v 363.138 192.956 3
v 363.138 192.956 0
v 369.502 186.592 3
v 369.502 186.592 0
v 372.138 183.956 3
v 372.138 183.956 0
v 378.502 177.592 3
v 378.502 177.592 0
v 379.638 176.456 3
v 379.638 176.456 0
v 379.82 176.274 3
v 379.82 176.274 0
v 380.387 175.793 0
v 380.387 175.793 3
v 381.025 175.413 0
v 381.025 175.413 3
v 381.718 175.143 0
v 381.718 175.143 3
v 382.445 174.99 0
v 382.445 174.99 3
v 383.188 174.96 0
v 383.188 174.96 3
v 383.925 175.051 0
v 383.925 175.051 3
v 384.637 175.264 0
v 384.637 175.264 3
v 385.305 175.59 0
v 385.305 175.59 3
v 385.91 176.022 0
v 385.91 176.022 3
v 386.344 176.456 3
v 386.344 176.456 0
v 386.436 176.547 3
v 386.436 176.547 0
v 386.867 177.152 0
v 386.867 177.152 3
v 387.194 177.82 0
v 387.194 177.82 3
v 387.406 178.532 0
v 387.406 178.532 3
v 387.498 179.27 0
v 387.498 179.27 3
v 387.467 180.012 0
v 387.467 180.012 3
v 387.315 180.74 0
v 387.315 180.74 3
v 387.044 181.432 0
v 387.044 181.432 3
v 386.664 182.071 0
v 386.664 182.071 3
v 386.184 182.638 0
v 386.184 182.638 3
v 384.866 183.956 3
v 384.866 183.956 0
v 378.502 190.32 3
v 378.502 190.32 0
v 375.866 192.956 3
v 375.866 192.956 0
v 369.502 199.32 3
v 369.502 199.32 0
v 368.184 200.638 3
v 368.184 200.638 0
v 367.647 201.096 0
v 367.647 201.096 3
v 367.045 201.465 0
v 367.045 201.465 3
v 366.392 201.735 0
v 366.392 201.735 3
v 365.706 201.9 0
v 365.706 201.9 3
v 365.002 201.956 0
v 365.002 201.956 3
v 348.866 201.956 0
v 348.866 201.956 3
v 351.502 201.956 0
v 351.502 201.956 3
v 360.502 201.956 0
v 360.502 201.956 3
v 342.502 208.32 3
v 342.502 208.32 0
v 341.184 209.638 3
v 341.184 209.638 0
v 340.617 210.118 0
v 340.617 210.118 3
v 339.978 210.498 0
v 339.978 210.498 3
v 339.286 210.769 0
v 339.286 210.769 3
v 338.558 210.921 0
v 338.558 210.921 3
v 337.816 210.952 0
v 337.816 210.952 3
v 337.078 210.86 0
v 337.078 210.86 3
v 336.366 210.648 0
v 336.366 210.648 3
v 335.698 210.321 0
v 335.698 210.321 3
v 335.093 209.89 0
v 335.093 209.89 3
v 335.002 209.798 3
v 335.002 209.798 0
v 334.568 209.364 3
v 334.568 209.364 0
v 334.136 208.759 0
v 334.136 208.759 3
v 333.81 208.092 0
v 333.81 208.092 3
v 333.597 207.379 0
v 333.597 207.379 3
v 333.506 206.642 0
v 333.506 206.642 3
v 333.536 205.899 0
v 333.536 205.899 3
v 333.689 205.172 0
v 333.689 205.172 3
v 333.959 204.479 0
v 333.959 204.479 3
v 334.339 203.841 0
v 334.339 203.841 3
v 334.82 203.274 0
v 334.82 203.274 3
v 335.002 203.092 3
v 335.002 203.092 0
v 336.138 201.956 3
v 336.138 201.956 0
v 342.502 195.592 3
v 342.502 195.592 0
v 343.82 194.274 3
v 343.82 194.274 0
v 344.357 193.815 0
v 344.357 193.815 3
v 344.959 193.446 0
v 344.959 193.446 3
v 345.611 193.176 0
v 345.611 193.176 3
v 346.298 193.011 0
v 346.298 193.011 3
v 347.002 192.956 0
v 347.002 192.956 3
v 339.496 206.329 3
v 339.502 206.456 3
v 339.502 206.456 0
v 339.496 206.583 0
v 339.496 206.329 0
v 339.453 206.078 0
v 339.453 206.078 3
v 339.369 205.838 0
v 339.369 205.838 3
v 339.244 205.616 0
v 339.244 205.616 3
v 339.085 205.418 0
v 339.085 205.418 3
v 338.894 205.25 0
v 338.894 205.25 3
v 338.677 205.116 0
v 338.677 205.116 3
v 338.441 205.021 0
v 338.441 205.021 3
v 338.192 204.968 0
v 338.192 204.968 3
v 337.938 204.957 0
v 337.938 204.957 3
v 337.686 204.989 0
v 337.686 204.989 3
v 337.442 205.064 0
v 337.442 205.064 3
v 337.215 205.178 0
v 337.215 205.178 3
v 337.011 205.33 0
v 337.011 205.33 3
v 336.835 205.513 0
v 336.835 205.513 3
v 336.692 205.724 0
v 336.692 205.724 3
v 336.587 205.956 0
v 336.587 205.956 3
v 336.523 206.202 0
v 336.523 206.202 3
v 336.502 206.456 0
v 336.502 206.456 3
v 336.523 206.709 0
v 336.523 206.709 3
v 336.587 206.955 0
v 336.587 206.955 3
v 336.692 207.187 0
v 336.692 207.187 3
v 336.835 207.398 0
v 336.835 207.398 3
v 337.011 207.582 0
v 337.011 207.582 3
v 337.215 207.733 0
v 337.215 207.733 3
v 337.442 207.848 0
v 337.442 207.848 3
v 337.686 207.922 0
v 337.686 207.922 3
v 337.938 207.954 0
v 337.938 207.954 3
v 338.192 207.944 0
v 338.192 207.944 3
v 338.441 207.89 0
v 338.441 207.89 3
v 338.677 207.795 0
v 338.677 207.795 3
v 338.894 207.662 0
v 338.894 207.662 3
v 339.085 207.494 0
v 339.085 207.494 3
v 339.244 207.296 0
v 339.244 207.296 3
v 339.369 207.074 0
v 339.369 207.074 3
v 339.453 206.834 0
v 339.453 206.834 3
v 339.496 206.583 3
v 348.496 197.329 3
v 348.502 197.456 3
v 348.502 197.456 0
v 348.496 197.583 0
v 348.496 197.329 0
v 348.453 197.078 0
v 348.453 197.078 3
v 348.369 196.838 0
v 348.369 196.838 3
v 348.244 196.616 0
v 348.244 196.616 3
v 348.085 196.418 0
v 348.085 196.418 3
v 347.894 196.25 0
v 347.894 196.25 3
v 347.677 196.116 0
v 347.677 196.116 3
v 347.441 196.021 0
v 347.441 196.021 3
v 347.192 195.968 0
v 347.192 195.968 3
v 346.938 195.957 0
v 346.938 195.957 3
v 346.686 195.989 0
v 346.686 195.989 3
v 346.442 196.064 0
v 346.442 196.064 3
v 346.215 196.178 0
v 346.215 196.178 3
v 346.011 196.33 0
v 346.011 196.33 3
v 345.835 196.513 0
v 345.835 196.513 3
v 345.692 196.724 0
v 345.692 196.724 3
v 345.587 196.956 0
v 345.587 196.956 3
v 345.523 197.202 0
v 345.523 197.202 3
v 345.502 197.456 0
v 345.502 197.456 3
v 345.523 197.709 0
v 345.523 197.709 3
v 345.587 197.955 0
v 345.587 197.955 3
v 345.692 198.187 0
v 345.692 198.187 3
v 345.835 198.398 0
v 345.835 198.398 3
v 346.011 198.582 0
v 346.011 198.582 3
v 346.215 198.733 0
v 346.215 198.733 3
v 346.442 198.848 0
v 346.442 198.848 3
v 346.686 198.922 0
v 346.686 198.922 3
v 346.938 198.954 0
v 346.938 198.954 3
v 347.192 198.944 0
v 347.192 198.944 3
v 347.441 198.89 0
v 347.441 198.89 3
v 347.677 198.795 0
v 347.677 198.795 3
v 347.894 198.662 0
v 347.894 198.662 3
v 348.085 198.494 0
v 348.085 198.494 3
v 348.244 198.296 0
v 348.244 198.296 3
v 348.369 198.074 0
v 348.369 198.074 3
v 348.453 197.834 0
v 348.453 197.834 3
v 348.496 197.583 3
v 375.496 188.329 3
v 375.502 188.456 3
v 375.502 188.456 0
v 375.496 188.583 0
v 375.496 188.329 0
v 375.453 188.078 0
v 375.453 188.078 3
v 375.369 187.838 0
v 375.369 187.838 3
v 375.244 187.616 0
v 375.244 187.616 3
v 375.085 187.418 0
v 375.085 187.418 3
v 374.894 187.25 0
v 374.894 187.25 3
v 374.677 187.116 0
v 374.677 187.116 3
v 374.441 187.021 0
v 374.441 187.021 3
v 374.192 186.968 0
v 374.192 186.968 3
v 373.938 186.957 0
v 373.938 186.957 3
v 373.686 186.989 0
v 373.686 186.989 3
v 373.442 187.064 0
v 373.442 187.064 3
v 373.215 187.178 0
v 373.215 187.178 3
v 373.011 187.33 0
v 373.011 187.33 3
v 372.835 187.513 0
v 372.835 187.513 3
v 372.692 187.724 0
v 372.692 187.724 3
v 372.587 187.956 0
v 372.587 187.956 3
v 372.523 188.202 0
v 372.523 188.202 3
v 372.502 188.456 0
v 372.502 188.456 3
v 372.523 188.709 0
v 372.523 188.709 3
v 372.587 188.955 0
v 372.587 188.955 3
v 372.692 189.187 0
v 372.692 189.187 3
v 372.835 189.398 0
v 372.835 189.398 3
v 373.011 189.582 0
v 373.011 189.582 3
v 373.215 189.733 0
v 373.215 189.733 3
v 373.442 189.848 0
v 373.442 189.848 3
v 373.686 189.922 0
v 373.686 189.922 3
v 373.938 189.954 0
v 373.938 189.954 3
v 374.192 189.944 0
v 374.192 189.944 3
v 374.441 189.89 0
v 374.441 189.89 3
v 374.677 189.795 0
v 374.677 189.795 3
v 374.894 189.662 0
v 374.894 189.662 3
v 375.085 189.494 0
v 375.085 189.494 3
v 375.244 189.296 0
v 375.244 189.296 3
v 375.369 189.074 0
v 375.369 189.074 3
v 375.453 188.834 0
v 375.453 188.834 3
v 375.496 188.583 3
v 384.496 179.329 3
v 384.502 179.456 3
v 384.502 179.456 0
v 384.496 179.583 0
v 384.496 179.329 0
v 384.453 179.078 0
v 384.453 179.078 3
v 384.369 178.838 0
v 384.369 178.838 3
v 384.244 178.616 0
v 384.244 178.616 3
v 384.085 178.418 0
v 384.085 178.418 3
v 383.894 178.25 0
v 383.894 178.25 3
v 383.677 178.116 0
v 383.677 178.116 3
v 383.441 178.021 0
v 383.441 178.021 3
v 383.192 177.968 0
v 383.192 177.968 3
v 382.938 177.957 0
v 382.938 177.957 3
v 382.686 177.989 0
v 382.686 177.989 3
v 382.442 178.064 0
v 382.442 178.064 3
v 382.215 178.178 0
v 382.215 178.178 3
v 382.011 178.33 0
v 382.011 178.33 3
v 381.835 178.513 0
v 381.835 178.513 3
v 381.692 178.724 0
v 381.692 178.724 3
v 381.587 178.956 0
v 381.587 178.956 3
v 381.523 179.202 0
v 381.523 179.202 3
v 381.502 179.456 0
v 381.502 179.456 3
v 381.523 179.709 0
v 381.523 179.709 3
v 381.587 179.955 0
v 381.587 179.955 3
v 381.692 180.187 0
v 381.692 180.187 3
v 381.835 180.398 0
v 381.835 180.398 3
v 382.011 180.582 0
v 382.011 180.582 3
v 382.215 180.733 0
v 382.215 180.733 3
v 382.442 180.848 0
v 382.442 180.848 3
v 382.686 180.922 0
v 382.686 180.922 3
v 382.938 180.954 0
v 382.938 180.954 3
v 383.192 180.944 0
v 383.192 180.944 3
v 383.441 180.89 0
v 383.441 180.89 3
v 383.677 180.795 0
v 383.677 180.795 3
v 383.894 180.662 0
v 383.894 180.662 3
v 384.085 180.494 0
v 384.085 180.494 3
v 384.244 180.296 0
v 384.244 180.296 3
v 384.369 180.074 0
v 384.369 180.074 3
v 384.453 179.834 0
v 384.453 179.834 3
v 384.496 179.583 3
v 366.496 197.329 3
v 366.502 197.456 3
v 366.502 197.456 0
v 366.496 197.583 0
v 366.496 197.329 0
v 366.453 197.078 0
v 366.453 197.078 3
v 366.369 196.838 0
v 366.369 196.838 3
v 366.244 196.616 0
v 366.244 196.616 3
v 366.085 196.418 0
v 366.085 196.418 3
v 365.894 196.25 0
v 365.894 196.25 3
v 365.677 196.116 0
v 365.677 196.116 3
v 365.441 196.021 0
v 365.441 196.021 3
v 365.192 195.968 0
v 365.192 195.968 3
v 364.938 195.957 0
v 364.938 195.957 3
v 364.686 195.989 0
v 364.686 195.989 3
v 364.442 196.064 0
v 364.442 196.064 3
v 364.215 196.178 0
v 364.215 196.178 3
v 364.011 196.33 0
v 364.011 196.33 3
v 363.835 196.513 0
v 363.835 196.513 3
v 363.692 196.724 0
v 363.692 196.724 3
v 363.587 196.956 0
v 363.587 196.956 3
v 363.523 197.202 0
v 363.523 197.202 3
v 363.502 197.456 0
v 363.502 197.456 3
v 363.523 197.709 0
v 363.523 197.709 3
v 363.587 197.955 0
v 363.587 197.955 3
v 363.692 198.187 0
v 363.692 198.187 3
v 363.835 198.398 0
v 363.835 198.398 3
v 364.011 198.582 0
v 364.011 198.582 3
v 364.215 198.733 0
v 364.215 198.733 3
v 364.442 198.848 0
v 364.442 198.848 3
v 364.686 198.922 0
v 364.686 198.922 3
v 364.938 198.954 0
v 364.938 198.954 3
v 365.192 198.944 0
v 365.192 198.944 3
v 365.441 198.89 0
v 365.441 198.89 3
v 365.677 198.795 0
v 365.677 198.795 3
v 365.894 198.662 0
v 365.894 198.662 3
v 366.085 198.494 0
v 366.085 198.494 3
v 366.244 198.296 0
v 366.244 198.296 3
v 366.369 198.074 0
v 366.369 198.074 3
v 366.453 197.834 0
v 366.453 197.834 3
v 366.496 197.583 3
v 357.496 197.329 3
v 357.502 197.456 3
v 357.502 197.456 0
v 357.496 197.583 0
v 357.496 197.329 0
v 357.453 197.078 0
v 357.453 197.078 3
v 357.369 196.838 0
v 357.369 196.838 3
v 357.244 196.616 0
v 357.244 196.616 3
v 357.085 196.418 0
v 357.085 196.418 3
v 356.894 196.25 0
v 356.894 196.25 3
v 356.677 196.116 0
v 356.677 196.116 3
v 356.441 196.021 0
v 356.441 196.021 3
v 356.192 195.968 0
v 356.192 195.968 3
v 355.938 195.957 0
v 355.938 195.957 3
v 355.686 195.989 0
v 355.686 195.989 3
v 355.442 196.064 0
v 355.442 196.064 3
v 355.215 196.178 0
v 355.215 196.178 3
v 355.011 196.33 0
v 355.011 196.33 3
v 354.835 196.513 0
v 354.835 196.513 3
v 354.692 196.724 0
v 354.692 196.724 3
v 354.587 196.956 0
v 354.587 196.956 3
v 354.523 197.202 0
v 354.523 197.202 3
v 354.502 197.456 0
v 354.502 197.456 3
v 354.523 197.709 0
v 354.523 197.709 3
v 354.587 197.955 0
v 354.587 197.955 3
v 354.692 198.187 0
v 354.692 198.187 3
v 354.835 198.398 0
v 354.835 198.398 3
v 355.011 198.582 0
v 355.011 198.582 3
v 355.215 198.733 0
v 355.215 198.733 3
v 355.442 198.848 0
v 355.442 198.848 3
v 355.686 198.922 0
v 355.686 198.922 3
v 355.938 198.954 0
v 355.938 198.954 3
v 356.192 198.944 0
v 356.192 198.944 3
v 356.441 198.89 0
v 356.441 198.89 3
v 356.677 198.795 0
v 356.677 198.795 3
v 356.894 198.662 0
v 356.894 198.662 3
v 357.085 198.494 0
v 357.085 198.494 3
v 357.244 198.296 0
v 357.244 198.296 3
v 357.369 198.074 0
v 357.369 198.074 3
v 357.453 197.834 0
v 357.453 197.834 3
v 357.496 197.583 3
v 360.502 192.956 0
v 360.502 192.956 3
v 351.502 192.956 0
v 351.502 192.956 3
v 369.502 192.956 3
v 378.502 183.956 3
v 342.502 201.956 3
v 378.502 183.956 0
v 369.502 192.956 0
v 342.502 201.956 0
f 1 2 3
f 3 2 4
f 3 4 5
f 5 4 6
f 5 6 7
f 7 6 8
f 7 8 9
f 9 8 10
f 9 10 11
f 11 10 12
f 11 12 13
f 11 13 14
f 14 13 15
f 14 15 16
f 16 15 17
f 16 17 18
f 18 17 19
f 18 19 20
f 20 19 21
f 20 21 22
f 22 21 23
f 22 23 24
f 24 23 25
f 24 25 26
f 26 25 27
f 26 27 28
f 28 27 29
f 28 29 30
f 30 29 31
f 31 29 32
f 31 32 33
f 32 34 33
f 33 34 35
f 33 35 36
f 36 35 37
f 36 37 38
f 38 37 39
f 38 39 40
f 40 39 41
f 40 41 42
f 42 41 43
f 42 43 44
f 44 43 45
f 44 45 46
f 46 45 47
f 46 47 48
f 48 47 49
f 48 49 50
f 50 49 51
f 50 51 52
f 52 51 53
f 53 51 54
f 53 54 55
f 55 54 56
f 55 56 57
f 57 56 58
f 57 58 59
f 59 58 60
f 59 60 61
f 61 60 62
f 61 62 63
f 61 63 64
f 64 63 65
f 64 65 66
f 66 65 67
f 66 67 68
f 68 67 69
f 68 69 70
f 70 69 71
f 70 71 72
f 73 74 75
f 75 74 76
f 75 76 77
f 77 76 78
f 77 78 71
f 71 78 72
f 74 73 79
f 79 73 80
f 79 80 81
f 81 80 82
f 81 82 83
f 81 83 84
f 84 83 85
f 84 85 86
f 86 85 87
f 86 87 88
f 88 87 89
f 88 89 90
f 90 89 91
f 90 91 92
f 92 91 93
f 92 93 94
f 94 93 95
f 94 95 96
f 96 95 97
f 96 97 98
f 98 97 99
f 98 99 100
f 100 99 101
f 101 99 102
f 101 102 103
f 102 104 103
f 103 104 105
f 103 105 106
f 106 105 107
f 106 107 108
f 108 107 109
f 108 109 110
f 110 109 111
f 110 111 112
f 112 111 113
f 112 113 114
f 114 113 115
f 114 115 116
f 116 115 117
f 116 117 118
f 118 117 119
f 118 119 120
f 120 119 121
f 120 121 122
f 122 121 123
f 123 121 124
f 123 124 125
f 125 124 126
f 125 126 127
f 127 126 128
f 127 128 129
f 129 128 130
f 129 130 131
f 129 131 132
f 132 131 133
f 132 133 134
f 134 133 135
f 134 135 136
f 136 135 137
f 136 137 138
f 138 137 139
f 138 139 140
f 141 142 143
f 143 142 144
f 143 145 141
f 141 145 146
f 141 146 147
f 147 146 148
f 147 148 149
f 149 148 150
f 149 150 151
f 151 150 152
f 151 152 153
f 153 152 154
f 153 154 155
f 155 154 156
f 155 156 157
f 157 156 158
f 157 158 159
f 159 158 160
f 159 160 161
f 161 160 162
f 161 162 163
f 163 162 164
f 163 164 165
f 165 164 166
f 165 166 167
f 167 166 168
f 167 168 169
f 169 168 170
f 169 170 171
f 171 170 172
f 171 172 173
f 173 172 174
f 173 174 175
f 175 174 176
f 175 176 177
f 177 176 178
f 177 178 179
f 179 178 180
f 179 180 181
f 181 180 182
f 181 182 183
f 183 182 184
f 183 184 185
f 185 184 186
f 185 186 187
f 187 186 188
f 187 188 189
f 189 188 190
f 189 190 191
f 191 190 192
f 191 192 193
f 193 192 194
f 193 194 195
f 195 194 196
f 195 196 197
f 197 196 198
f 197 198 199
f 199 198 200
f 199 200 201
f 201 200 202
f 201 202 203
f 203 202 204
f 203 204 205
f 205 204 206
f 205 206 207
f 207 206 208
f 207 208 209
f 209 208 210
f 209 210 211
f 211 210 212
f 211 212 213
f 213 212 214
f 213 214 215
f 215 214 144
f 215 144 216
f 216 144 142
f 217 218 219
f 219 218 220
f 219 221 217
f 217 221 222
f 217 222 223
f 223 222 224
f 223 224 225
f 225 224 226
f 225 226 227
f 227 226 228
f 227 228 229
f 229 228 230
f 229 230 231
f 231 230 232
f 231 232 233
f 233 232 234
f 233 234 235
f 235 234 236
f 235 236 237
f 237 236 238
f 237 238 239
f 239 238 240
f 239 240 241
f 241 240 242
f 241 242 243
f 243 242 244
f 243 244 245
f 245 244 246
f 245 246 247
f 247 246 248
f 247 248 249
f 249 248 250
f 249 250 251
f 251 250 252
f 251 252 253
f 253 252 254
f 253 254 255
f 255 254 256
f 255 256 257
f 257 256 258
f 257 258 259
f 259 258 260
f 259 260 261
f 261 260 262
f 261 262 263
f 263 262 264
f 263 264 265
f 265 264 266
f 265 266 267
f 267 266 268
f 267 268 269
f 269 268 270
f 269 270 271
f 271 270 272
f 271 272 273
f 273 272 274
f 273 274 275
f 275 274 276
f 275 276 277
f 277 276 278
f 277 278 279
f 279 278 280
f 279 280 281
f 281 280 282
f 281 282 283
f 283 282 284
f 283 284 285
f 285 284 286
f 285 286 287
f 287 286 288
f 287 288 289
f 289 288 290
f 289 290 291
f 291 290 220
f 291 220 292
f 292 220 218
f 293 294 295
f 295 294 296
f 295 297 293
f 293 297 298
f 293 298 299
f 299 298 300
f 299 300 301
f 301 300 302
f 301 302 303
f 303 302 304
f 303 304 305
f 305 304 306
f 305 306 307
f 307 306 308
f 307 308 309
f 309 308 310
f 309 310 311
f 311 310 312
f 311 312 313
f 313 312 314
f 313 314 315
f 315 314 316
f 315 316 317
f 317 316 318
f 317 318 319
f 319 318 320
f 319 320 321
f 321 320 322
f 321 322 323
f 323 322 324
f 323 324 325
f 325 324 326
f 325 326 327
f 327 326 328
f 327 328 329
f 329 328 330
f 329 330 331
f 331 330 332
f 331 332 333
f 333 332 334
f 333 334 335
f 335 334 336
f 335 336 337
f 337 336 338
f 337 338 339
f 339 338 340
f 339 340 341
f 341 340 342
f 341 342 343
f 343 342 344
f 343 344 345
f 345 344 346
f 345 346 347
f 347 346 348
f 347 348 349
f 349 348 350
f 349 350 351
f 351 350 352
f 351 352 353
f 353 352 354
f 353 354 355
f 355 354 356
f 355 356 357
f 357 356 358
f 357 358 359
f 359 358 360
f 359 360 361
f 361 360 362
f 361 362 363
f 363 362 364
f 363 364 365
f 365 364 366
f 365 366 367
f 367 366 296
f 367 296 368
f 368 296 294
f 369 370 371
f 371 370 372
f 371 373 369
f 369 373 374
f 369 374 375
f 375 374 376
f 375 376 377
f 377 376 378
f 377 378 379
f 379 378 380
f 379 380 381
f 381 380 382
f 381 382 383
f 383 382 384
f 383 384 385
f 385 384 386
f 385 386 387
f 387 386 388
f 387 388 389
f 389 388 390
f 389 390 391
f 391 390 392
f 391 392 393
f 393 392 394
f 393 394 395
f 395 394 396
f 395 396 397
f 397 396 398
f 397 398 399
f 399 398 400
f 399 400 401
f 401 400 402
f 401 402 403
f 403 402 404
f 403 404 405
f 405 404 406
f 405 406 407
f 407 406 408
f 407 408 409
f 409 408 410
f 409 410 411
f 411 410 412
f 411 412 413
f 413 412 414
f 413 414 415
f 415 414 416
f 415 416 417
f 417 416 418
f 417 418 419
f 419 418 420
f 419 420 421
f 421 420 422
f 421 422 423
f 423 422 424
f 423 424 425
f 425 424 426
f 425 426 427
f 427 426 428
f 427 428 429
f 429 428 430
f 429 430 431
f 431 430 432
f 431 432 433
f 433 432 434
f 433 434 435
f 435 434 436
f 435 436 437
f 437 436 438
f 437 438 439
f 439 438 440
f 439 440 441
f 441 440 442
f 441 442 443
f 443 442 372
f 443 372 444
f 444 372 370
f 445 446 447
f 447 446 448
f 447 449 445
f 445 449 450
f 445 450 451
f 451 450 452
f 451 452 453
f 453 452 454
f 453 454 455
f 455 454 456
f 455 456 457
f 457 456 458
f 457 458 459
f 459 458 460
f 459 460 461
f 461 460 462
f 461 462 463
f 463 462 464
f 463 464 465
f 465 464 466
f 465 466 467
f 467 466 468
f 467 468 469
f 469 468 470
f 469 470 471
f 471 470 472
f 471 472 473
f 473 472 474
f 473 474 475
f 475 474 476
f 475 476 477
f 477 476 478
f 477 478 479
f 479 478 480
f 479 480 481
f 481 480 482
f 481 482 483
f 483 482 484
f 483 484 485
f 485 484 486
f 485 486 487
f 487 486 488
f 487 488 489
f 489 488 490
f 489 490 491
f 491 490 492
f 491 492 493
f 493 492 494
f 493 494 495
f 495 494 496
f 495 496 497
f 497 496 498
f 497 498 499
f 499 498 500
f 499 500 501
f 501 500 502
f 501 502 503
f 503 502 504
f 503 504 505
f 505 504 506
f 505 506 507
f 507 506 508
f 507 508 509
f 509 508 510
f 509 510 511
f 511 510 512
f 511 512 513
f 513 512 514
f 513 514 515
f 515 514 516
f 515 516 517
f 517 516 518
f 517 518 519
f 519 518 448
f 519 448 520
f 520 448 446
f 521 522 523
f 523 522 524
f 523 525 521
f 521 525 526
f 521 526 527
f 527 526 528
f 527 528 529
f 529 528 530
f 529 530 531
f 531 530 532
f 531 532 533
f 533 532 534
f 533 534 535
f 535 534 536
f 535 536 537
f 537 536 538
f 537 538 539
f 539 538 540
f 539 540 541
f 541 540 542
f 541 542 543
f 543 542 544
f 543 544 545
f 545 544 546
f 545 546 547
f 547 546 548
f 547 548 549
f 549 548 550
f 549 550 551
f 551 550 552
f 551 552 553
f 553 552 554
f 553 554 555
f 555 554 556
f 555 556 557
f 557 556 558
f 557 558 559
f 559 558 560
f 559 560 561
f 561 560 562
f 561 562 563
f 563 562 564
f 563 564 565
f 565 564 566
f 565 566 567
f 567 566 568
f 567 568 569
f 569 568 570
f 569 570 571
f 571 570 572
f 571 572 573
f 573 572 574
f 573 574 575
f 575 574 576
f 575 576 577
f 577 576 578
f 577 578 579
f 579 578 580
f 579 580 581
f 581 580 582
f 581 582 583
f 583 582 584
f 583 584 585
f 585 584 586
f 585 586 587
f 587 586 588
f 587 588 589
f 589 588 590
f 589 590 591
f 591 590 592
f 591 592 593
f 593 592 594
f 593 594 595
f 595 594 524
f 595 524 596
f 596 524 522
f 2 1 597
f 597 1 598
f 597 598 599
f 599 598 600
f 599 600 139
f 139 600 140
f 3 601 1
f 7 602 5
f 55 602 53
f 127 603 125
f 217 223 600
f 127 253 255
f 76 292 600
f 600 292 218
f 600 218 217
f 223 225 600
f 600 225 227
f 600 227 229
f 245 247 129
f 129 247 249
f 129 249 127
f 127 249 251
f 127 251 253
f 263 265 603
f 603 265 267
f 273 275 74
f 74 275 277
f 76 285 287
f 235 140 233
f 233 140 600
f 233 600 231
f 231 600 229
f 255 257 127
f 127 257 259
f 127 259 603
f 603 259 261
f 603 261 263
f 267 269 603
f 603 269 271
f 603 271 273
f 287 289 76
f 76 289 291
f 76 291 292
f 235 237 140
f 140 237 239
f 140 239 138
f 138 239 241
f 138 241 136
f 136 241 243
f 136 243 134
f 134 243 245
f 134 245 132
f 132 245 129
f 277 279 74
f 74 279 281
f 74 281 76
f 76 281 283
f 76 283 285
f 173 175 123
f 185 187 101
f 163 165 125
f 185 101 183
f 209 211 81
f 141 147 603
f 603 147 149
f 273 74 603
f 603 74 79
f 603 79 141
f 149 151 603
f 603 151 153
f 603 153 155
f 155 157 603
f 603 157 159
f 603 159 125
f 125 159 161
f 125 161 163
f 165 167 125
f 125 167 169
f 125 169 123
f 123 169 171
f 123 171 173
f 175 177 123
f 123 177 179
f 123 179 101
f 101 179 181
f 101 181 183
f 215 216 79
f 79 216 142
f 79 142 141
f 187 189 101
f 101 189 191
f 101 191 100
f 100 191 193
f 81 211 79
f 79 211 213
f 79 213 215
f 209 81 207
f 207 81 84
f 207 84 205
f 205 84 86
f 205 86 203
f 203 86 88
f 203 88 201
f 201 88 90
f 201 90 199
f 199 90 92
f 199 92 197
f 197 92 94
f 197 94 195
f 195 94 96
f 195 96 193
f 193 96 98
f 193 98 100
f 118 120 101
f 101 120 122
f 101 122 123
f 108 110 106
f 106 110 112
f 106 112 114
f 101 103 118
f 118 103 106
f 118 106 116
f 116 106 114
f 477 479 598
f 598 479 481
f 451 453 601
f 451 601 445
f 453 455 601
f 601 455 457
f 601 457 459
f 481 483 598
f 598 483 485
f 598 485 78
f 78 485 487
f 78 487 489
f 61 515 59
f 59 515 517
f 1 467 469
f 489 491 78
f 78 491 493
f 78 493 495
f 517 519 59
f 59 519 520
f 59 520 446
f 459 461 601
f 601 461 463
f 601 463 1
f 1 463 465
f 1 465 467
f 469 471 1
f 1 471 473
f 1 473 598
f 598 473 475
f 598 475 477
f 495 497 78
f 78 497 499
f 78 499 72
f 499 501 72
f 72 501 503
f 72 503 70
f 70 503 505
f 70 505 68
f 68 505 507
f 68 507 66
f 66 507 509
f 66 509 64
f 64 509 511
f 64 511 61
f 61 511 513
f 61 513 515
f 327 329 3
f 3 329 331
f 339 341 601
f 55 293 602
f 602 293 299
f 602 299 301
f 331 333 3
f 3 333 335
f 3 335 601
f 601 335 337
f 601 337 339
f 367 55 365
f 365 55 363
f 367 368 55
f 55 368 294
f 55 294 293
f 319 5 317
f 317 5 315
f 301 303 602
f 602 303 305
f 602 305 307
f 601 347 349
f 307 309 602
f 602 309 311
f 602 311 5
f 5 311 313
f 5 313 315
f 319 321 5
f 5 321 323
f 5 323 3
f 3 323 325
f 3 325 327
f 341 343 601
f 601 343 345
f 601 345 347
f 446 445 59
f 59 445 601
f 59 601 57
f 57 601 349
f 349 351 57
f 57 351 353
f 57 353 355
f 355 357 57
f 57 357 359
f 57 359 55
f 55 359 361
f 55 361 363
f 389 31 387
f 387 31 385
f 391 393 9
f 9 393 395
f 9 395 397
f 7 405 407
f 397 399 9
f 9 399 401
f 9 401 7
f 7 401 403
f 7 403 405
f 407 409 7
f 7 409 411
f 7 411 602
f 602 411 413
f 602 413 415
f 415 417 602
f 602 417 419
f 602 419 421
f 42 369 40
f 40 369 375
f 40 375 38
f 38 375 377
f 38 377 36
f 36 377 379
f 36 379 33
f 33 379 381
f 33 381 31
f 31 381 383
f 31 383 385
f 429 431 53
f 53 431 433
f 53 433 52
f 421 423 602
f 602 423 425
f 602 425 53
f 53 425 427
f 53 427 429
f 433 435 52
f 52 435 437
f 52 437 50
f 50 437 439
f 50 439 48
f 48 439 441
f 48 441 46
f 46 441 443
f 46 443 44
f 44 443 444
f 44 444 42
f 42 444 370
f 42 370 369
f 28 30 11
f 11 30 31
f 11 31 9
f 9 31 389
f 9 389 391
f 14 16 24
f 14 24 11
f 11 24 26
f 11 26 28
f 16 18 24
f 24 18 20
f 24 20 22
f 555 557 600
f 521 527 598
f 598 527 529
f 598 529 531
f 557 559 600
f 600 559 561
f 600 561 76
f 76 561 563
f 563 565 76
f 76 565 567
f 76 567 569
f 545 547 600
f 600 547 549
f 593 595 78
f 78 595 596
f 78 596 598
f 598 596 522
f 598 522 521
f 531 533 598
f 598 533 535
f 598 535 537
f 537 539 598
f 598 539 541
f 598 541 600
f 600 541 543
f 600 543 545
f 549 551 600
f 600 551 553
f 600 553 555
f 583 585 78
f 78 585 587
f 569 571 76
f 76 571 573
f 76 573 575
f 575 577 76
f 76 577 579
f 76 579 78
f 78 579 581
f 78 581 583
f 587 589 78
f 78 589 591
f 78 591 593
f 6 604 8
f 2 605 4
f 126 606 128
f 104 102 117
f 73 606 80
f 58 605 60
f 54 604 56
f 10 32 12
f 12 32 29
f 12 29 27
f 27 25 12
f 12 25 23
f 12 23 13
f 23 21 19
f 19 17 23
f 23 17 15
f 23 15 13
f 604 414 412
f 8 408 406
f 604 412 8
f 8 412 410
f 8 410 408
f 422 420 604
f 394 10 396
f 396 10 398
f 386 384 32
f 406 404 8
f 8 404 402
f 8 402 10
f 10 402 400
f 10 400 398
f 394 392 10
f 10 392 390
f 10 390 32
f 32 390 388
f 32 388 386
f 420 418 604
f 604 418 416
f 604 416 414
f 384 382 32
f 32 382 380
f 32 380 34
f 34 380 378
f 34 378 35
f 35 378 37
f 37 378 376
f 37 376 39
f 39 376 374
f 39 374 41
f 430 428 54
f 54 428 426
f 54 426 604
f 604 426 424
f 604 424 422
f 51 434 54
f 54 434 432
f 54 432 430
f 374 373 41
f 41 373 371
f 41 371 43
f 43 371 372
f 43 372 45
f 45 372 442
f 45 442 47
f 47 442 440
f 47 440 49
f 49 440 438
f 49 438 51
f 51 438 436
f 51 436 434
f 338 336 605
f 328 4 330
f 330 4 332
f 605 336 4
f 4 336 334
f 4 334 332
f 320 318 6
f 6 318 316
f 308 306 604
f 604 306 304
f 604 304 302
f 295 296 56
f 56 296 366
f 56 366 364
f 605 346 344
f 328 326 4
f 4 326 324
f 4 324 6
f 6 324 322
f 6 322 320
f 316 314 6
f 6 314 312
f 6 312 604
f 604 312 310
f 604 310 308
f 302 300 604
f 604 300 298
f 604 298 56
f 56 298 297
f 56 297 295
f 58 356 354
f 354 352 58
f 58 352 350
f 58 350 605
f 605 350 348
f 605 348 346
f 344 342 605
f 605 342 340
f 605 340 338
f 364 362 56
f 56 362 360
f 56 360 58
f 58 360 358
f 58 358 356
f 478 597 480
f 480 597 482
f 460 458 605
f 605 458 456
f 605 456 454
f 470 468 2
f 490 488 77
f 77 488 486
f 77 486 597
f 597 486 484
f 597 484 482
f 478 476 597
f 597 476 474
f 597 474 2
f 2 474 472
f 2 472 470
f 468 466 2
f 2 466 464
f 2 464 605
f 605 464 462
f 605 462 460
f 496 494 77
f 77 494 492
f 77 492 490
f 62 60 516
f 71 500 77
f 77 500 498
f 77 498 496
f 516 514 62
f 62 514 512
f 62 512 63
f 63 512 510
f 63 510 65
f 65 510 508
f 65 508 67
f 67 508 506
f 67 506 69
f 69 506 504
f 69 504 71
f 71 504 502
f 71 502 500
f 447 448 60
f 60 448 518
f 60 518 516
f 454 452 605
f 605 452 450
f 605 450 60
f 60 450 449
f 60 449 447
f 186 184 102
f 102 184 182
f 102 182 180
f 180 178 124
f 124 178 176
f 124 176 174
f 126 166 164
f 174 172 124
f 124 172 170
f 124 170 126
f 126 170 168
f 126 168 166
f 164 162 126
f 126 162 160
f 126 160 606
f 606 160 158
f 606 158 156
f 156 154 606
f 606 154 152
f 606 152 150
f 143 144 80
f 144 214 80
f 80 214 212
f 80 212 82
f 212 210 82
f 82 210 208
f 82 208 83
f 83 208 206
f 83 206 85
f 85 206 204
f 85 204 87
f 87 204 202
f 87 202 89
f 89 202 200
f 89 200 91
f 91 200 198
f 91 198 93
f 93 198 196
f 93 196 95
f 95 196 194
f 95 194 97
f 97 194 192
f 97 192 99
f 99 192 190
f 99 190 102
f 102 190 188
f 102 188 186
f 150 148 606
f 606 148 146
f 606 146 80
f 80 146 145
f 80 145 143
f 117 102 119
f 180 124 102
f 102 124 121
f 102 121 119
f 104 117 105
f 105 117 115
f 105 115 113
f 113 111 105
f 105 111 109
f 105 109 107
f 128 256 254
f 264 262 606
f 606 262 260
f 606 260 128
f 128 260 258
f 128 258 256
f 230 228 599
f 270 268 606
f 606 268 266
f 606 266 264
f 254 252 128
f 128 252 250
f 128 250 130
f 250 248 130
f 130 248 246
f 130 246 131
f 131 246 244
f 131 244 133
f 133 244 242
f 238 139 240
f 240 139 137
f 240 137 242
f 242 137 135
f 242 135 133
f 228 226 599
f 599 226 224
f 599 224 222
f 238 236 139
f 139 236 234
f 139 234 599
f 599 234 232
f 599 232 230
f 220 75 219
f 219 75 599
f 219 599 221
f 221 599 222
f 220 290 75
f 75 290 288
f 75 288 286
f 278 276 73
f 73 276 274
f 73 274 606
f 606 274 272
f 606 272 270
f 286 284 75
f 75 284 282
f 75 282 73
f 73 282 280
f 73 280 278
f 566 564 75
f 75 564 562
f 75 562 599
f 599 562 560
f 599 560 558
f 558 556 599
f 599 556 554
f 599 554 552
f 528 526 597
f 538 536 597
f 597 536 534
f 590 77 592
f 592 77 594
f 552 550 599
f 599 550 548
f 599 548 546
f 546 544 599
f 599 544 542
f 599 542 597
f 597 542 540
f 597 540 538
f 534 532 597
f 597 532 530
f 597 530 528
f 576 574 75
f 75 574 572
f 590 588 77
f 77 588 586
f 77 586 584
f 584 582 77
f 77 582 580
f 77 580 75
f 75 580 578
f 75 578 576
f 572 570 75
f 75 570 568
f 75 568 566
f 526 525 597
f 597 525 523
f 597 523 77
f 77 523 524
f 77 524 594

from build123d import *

# Parameters (mm, degrees)
MODEL_R                 = 1.5
SALIENTE_EXTRUIR1_DEPTH = 3


with BuildPart() as part:
    # Model → Saliente-Extruir1 (new body)
    with BuildSketch(Plane.XY):
        with BuildLine():
            Line((363.137702798, 192.955720999), (379.819683313, 176.273740484))
            ThreePointArc((379.819683313, 176.273740484), (386.183644344, 176.273740484), (386.183644344, 182.637701515))
            Line((386.183644344, 182.637701515), (368.183644344, 200.637701515))
            ThreePointArc((368.183644344, 200.637701515), (366.723739274, 201.613178895), (365.001663828, 201.955720999))
            Line((365.001663828, 201.955720999), (348.865624859, 201.955720999))
            Line((348.865624859, 201.955720999), (341.183644344, 209.637701515))
            ThreePointArc((341.183644344, 209.637701515), (334.819683313, 209.637701515), (334.819683313, 203.273740484))
            Line((334.819683313, 203.273740484), (343.819683313, 194.273740484))
            ThreePointArc((343.819683313, 194.273740484), (345.279588383, 193.298263103), (347.001663828, 192.955720999))
            Line((347.001663828, 192.955720999), (363.137702798, 192.955720999))
        make_face()
        with Locations((356.001663828, 197.455720999)):
            Circle(MODEL_R, mode=Mode.SUBTRACT)
        with Locations((365.001663828, 197.455720999)):
            Circle(MODEL_R, mode=Mode.SUBTRACT)
        with Locations((383.001663828, 179.455720999)):
            Circle(MODEL_R, mode=Mode.SUBTRACT)
        with Locations((374.001663828, 188.455720999)):
            Circle(MODEL_R, mode=Mode.SUBTRACT)
        with Locations((347.001663828, 197.455720999)):
            Circle(MODEL_R, mode=Mode.SUBTRACT)
        with Locations((338.001663828, 206.455720999)):
            Circle(MODEL_R, mode=Mode.SUBTRACT)
    extrude(amount=SALIENTE_EXTRUIR1_DEPTH)


solid = part.part
